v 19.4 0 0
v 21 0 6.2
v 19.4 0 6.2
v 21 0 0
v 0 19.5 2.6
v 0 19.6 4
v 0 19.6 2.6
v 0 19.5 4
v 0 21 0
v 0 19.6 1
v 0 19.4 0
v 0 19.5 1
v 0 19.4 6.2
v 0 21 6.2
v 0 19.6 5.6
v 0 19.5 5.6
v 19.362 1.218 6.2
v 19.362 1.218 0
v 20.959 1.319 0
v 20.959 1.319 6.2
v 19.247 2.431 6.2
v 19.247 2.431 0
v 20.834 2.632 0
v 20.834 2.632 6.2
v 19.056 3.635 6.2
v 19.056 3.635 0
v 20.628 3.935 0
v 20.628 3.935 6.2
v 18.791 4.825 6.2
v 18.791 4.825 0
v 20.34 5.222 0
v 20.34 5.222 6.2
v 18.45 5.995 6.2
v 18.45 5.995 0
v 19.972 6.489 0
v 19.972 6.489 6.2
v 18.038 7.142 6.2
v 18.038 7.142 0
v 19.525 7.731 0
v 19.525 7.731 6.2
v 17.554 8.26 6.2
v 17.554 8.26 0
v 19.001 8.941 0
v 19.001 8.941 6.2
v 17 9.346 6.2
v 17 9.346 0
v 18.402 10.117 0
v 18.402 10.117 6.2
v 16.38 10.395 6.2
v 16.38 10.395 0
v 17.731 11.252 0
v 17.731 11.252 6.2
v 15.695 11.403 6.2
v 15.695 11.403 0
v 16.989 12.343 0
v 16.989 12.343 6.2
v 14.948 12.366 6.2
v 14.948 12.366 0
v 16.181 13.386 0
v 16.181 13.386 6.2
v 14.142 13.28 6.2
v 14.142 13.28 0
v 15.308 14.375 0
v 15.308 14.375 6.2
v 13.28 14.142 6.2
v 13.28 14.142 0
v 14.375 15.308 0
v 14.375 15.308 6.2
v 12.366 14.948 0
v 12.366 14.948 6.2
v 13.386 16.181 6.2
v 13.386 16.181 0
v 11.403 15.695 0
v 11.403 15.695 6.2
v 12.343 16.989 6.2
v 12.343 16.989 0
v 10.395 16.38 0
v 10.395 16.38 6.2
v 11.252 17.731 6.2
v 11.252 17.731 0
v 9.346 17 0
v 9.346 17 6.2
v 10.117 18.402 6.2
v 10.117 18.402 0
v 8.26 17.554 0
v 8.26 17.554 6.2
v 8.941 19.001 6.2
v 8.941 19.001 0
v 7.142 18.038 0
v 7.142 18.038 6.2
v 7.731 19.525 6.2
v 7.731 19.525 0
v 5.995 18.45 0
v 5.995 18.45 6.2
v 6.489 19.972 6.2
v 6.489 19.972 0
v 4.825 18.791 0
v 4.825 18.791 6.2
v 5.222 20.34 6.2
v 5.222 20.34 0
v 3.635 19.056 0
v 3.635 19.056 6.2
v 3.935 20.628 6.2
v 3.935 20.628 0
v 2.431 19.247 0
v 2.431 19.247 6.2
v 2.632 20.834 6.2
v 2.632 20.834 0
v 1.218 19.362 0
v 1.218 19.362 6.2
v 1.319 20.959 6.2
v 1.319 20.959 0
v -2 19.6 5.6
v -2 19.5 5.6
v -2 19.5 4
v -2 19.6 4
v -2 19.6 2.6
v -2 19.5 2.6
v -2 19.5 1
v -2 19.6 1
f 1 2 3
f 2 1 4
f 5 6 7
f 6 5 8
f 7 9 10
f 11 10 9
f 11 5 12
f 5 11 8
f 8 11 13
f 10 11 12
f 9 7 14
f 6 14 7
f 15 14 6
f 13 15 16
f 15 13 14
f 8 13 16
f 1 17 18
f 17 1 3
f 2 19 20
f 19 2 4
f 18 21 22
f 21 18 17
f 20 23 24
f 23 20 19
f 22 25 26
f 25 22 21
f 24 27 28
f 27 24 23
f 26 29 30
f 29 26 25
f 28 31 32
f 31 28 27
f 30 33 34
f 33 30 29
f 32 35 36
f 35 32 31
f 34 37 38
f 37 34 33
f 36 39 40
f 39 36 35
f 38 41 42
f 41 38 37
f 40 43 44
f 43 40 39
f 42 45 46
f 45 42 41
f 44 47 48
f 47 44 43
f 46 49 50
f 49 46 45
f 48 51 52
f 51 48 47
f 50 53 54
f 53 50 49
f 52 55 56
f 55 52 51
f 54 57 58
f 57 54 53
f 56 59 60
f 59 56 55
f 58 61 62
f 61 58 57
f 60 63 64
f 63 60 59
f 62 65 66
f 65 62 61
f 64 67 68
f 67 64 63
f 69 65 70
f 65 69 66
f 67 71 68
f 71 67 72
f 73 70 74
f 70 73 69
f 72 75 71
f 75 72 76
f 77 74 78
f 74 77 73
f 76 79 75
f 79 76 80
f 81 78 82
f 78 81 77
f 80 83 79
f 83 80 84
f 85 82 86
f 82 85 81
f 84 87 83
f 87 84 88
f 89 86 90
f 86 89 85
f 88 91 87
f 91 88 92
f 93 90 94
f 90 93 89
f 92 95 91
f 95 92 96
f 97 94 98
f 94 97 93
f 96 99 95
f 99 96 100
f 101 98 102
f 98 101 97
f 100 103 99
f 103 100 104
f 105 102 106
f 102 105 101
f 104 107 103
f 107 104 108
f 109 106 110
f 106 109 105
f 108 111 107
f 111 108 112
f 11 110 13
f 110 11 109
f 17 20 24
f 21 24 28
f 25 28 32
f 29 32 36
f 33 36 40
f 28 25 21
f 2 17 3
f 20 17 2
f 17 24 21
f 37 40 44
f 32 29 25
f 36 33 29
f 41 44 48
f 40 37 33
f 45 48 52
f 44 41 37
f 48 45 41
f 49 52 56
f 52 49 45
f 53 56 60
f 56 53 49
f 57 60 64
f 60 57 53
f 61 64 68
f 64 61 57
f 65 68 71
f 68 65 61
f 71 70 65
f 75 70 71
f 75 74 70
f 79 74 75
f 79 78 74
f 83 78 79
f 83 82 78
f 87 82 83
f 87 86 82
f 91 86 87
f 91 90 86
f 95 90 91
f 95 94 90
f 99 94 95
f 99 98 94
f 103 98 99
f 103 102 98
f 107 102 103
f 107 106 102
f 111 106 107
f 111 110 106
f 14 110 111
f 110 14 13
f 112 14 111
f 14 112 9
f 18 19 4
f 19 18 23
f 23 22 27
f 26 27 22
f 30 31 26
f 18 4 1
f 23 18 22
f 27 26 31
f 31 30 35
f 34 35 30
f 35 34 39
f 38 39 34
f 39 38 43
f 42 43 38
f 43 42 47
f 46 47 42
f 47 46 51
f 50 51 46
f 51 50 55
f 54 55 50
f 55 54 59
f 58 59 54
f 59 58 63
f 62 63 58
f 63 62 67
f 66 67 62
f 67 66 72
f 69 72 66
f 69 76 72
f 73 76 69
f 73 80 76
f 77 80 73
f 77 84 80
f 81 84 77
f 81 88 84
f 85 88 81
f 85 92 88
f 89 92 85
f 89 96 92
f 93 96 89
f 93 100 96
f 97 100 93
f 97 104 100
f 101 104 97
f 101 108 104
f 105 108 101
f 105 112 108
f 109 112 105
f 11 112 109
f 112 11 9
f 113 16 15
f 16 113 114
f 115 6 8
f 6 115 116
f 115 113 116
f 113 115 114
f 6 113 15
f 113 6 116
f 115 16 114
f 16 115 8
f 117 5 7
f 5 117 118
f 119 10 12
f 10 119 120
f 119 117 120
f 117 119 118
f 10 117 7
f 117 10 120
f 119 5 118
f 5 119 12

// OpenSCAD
// https://www.ufinebattery.com/images/upload/ufx0947-13-3-7v-20mah-special-shaped-battery-ufxUFX0947-13product-datasheet.pdf
bat_h = 6.2;
bat_w = 1.6;
$fn  =100;
r = 21;
//translate([2,0,0])
union(){
color("gray")rotate_extrude(angle=90){

union(){
	//scale([2,1,1]) square(10,10);

	translate([r,0,0])rotate([0,0,90])scale([bat_h,bat_w,bat_w]) square(1,1);
	}
}
translate([-2,r-1.5,4])cube([2,0.1,bat_w]);
translate([-2,r-1.5,1])cube([2,0.1,bat_w]);
color("black")translate([r-bat_w,0.15,1])rotate([0,-90,0])scale([0.1,0.1,0.1])text("160630");
color("black")translate([r-bat_w-0.1,1.45,1])rotate([0,-90,3])scale([0.1,0.1,0.1])text("ufine");
}
